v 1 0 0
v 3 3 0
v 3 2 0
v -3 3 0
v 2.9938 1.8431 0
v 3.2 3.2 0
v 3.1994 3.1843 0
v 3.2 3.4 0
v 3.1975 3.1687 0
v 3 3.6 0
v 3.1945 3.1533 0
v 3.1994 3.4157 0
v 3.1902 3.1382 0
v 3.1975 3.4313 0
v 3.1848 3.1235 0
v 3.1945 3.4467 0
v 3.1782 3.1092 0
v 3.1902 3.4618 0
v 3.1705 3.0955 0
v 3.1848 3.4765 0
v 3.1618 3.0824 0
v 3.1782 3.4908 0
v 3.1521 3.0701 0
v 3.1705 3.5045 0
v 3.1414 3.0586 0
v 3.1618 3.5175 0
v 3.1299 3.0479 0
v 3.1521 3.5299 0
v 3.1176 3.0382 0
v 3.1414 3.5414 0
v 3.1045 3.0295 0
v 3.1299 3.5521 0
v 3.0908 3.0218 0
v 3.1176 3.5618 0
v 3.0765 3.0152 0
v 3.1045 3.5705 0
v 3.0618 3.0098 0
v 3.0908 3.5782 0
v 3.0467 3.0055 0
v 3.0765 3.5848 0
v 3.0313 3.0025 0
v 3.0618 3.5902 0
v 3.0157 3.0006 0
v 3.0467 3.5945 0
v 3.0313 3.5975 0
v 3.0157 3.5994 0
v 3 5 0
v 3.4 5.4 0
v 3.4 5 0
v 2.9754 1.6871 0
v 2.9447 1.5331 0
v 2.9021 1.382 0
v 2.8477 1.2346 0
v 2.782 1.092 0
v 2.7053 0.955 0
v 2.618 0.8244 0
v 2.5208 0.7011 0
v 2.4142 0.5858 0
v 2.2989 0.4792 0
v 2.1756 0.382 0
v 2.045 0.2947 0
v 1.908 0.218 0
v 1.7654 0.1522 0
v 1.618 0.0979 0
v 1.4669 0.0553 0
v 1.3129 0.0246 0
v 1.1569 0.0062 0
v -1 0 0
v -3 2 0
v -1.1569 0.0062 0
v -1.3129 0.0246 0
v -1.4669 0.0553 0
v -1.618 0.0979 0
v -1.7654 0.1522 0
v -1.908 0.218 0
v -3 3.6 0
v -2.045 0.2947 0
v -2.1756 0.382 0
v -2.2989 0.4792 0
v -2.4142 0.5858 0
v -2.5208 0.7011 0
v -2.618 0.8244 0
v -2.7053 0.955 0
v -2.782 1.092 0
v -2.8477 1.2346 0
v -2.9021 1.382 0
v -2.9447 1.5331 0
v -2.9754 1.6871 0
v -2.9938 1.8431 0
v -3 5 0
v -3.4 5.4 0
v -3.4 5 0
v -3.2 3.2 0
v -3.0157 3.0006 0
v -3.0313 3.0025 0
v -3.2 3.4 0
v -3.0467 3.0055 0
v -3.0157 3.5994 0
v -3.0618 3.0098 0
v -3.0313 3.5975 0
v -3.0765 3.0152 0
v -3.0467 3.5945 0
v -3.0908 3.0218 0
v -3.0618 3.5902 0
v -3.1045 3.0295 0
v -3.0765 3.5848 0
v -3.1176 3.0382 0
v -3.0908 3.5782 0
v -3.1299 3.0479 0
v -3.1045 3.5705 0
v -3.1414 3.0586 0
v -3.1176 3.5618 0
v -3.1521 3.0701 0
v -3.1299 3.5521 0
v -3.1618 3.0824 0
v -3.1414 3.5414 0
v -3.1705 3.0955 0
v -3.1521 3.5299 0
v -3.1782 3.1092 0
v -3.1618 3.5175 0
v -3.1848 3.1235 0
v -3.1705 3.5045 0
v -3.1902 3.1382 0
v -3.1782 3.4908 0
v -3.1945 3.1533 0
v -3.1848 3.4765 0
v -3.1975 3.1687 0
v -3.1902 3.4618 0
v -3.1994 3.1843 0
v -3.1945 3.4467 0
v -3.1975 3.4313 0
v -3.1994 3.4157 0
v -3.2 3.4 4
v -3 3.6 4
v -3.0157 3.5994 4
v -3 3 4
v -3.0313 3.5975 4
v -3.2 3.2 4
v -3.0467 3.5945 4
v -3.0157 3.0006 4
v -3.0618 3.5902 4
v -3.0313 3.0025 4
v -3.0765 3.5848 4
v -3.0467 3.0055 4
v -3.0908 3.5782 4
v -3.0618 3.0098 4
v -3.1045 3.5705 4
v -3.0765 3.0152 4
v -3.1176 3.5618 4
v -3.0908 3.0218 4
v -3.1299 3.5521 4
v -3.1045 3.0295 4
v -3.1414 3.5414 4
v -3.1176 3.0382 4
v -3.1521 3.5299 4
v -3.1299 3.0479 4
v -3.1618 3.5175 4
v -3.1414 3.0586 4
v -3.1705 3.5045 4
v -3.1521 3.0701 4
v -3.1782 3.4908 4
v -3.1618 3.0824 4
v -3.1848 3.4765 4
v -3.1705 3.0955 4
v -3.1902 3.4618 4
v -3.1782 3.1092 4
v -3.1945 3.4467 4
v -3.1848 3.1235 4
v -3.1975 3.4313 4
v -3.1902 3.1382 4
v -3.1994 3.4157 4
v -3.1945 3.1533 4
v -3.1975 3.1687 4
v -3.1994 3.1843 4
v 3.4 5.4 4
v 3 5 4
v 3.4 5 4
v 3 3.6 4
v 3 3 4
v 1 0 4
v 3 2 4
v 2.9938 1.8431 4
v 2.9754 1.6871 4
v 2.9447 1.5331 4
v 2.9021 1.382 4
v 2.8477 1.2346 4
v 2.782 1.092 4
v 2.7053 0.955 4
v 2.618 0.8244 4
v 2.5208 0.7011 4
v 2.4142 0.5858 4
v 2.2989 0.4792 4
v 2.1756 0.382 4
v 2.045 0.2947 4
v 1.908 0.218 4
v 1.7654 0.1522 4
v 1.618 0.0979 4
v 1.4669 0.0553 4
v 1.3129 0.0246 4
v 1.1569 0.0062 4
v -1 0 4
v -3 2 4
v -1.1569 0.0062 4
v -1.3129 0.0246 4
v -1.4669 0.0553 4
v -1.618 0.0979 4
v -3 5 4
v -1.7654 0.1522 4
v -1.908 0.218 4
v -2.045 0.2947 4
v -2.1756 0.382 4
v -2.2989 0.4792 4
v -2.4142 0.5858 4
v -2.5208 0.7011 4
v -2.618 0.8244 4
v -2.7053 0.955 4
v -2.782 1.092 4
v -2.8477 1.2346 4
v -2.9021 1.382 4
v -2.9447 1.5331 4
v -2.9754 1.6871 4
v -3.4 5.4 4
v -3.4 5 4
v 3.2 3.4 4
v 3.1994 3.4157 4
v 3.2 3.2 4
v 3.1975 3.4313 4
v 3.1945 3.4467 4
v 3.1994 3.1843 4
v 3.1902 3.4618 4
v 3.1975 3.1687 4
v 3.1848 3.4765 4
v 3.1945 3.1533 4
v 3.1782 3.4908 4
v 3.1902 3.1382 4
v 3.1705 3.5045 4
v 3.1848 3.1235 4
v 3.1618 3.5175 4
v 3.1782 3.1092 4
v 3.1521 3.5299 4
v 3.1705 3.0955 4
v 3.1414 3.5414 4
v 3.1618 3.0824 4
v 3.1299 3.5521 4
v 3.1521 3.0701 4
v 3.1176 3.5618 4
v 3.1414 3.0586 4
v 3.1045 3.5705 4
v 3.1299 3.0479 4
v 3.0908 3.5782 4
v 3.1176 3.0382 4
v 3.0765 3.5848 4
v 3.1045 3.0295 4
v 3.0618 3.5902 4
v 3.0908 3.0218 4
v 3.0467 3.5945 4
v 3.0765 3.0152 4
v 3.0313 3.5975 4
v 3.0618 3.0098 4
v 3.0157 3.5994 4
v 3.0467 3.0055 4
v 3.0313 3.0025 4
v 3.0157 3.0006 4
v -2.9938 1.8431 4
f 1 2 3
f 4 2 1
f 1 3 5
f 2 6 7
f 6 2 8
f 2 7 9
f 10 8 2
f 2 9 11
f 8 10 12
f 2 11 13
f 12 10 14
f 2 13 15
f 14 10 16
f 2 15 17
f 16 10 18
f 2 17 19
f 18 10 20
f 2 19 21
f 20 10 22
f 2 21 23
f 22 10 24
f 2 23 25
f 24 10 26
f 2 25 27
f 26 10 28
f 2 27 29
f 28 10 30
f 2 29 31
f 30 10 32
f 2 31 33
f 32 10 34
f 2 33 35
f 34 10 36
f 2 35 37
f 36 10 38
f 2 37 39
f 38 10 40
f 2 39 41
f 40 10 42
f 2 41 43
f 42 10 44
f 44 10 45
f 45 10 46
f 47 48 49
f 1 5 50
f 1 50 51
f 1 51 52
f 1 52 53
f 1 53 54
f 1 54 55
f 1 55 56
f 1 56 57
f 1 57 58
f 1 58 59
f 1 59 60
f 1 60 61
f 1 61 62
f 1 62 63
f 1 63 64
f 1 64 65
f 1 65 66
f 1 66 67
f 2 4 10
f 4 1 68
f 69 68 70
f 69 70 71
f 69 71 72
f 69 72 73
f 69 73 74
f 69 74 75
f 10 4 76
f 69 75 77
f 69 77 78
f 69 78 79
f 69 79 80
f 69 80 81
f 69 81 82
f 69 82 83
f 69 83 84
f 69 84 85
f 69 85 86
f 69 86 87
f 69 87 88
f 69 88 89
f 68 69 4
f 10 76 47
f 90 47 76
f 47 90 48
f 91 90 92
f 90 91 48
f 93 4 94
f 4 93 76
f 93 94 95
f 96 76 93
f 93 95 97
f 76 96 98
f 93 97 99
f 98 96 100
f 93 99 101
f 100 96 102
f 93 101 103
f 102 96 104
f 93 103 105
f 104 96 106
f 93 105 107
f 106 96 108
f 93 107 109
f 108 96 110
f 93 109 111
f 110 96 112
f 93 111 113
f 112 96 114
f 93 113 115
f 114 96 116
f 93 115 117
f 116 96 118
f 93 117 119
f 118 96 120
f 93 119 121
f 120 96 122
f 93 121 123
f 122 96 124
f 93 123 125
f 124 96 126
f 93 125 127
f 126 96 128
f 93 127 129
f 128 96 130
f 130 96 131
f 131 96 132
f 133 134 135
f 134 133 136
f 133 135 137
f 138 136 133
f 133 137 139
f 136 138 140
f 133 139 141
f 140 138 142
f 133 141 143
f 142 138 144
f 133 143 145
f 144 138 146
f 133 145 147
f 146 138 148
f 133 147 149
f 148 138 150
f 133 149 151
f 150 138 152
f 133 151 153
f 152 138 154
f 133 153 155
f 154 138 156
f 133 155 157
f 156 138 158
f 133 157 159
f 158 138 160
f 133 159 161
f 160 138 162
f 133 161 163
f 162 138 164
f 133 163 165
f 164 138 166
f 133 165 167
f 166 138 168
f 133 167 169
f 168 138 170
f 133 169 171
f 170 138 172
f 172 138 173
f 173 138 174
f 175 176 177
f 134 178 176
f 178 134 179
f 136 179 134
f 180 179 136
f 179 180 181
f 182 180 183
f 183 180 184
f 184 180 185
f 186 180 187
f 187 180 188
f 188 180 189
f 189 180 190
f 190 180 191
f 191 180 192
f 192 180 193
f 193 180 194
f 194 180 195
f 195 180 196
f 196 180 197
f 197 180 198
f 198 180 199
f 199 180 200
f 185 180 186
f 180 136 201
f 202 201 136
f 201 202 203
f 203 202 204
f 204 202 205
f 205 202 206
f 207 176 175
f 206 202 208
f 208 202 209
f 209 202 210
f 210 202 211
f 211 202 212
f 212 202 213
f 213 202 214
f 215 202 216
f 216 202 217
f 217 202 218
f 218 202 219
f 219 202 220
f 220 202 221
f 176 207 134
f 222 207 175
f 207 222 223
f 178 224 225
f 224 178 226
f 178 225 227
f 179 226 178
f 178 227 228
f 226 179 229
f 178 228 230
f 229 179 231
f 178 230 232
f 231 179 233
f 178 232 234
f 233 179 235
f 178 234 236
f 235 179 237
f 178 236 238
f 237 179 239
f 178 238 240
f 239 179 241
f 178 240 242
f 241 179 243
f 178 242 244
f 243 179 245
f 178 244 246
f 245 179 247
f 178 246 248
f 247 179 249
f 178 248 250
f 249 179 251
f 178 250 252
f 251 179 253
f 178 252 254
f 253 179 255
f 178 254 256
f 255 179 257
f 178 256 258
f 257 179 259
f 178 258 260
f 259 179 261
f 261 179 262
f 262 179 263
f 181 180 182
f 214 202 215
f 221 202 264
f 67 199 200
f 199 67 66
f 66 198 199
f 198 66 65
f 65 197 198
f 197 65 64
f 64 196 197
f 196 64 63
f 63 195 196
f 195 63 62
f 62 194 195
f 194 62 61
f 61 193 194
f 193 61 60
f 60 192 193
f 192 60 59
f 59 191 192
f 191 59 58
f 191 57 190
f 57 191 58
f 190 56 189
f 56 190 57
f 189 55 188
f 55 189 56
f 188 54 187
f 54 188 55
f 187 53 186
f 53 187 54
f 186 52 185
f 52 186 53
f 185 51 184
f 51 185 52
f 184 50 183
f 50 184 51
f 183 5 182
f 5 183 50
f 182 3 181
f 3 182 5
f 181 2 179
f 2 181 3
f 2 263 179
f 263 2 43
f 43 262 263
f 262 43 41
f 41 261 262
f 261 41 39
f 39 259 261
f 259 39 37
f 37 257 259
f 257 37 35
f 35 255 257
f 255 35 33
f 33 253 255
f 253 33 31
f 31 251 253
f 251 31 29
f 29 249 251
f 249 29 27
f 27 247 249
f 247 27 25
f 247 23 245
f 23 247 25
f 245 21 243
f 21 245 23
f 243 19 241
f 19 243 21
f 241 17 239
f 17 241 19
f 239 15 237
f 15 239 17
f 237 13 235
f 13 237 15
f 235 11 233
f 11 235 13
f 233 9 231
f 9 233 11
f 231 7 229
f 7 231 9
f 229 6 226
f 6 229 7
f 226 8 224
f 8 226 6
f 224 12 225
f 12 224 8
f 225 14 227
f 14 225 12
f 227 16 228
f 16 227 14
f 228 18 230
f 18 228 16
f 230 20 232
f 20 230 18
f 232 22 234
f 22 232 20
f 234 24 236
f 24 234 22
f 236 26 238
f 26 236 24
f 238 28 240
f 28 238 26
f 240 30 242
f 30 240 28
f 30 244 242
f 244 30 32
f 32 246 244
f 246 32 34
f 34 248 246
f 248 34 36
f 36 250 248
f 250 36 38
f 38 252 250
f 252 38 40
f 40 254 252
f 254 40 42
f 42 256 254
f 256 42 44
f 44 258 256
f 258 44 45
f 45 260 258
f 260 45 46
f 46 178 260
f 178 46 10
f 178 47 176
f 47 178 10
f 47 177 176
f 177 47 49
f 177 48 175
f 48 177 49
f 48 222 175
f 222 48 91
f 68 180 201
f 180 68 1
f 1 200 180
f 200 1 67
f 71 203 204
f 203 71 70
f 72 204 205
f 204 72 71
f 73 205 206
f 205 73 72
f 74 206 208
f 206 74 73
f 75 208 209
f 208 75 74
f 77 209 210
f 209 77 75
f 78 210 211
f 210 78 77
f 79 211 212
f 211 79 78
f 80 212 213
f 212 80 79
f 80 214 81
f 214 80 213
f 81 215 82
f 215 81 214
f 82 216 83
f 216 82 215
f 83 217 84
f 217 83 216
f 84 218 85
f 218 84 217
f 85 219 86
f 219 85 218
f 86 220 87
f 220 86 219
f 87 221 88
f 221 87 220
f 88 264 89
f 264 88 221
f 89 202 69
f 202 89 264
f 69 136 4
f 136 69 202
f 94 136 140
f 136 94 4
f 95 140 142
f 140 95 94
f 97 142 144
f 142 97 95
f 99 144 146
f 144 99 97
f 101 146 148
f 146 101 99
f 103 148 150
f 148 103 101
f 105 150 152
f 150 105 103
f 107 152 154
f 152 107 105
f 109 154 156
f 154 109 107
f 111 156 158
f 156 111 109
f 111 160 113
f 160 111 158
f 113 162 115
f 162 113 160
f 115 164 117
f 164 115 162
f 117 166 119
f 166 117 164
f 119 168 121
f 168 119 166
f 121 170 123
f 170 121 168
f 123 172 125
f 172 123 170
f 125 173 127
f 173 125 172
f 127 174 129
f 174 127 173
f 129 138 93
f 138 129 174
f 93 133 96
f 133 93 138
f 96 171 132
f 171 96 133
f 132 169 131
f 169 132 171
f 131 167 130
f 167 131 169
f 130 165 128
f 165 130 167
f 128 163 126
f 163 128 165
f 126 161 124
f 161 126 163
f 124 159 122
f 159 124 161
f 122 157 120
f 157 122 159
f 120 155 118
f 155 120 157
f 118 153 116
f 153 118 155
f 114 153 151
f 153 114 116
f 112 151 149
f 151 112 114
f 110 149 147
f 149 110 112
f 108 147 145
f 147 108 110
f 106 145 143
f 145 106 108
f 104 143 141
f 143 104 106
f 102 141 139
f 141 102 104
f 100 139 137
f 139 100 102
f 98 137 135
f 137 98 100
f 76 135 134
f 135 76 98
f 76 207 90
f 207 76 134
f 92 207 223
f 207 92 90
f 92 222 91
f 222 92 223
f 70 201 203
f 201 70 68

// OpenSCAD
use <../_utils_v2/_round/polyround.scad>

length=4;
fix=[1.7+0.1,0.2,0.6];

module shape()
{
	w=6.2/2-0.1;
	w2=7/2-0.1;
	h=5;
	h2=0.4;
	polygon (polyRound([
		 [0,0,0]
		,[w,0,2]
		,[w,h+h2-fix[0]-fix[2],0]
		,[w+fix[1],h+h2-fix[0]-fix[2],0.4]
		,[w+fix[1],h+h2-fix[0],0.4]
		,[w,h+h2-fix[0],0]
		,[w,h,0]
		,[w2,h,0]
		,[w2,h+h2,0]
		,[0,h+h2,0]
	],20));
}

union()
{
	linear_extrude(length)
		shape();
	mirror([1,0,0])
		linear_extrude(length)
			shape();
}
